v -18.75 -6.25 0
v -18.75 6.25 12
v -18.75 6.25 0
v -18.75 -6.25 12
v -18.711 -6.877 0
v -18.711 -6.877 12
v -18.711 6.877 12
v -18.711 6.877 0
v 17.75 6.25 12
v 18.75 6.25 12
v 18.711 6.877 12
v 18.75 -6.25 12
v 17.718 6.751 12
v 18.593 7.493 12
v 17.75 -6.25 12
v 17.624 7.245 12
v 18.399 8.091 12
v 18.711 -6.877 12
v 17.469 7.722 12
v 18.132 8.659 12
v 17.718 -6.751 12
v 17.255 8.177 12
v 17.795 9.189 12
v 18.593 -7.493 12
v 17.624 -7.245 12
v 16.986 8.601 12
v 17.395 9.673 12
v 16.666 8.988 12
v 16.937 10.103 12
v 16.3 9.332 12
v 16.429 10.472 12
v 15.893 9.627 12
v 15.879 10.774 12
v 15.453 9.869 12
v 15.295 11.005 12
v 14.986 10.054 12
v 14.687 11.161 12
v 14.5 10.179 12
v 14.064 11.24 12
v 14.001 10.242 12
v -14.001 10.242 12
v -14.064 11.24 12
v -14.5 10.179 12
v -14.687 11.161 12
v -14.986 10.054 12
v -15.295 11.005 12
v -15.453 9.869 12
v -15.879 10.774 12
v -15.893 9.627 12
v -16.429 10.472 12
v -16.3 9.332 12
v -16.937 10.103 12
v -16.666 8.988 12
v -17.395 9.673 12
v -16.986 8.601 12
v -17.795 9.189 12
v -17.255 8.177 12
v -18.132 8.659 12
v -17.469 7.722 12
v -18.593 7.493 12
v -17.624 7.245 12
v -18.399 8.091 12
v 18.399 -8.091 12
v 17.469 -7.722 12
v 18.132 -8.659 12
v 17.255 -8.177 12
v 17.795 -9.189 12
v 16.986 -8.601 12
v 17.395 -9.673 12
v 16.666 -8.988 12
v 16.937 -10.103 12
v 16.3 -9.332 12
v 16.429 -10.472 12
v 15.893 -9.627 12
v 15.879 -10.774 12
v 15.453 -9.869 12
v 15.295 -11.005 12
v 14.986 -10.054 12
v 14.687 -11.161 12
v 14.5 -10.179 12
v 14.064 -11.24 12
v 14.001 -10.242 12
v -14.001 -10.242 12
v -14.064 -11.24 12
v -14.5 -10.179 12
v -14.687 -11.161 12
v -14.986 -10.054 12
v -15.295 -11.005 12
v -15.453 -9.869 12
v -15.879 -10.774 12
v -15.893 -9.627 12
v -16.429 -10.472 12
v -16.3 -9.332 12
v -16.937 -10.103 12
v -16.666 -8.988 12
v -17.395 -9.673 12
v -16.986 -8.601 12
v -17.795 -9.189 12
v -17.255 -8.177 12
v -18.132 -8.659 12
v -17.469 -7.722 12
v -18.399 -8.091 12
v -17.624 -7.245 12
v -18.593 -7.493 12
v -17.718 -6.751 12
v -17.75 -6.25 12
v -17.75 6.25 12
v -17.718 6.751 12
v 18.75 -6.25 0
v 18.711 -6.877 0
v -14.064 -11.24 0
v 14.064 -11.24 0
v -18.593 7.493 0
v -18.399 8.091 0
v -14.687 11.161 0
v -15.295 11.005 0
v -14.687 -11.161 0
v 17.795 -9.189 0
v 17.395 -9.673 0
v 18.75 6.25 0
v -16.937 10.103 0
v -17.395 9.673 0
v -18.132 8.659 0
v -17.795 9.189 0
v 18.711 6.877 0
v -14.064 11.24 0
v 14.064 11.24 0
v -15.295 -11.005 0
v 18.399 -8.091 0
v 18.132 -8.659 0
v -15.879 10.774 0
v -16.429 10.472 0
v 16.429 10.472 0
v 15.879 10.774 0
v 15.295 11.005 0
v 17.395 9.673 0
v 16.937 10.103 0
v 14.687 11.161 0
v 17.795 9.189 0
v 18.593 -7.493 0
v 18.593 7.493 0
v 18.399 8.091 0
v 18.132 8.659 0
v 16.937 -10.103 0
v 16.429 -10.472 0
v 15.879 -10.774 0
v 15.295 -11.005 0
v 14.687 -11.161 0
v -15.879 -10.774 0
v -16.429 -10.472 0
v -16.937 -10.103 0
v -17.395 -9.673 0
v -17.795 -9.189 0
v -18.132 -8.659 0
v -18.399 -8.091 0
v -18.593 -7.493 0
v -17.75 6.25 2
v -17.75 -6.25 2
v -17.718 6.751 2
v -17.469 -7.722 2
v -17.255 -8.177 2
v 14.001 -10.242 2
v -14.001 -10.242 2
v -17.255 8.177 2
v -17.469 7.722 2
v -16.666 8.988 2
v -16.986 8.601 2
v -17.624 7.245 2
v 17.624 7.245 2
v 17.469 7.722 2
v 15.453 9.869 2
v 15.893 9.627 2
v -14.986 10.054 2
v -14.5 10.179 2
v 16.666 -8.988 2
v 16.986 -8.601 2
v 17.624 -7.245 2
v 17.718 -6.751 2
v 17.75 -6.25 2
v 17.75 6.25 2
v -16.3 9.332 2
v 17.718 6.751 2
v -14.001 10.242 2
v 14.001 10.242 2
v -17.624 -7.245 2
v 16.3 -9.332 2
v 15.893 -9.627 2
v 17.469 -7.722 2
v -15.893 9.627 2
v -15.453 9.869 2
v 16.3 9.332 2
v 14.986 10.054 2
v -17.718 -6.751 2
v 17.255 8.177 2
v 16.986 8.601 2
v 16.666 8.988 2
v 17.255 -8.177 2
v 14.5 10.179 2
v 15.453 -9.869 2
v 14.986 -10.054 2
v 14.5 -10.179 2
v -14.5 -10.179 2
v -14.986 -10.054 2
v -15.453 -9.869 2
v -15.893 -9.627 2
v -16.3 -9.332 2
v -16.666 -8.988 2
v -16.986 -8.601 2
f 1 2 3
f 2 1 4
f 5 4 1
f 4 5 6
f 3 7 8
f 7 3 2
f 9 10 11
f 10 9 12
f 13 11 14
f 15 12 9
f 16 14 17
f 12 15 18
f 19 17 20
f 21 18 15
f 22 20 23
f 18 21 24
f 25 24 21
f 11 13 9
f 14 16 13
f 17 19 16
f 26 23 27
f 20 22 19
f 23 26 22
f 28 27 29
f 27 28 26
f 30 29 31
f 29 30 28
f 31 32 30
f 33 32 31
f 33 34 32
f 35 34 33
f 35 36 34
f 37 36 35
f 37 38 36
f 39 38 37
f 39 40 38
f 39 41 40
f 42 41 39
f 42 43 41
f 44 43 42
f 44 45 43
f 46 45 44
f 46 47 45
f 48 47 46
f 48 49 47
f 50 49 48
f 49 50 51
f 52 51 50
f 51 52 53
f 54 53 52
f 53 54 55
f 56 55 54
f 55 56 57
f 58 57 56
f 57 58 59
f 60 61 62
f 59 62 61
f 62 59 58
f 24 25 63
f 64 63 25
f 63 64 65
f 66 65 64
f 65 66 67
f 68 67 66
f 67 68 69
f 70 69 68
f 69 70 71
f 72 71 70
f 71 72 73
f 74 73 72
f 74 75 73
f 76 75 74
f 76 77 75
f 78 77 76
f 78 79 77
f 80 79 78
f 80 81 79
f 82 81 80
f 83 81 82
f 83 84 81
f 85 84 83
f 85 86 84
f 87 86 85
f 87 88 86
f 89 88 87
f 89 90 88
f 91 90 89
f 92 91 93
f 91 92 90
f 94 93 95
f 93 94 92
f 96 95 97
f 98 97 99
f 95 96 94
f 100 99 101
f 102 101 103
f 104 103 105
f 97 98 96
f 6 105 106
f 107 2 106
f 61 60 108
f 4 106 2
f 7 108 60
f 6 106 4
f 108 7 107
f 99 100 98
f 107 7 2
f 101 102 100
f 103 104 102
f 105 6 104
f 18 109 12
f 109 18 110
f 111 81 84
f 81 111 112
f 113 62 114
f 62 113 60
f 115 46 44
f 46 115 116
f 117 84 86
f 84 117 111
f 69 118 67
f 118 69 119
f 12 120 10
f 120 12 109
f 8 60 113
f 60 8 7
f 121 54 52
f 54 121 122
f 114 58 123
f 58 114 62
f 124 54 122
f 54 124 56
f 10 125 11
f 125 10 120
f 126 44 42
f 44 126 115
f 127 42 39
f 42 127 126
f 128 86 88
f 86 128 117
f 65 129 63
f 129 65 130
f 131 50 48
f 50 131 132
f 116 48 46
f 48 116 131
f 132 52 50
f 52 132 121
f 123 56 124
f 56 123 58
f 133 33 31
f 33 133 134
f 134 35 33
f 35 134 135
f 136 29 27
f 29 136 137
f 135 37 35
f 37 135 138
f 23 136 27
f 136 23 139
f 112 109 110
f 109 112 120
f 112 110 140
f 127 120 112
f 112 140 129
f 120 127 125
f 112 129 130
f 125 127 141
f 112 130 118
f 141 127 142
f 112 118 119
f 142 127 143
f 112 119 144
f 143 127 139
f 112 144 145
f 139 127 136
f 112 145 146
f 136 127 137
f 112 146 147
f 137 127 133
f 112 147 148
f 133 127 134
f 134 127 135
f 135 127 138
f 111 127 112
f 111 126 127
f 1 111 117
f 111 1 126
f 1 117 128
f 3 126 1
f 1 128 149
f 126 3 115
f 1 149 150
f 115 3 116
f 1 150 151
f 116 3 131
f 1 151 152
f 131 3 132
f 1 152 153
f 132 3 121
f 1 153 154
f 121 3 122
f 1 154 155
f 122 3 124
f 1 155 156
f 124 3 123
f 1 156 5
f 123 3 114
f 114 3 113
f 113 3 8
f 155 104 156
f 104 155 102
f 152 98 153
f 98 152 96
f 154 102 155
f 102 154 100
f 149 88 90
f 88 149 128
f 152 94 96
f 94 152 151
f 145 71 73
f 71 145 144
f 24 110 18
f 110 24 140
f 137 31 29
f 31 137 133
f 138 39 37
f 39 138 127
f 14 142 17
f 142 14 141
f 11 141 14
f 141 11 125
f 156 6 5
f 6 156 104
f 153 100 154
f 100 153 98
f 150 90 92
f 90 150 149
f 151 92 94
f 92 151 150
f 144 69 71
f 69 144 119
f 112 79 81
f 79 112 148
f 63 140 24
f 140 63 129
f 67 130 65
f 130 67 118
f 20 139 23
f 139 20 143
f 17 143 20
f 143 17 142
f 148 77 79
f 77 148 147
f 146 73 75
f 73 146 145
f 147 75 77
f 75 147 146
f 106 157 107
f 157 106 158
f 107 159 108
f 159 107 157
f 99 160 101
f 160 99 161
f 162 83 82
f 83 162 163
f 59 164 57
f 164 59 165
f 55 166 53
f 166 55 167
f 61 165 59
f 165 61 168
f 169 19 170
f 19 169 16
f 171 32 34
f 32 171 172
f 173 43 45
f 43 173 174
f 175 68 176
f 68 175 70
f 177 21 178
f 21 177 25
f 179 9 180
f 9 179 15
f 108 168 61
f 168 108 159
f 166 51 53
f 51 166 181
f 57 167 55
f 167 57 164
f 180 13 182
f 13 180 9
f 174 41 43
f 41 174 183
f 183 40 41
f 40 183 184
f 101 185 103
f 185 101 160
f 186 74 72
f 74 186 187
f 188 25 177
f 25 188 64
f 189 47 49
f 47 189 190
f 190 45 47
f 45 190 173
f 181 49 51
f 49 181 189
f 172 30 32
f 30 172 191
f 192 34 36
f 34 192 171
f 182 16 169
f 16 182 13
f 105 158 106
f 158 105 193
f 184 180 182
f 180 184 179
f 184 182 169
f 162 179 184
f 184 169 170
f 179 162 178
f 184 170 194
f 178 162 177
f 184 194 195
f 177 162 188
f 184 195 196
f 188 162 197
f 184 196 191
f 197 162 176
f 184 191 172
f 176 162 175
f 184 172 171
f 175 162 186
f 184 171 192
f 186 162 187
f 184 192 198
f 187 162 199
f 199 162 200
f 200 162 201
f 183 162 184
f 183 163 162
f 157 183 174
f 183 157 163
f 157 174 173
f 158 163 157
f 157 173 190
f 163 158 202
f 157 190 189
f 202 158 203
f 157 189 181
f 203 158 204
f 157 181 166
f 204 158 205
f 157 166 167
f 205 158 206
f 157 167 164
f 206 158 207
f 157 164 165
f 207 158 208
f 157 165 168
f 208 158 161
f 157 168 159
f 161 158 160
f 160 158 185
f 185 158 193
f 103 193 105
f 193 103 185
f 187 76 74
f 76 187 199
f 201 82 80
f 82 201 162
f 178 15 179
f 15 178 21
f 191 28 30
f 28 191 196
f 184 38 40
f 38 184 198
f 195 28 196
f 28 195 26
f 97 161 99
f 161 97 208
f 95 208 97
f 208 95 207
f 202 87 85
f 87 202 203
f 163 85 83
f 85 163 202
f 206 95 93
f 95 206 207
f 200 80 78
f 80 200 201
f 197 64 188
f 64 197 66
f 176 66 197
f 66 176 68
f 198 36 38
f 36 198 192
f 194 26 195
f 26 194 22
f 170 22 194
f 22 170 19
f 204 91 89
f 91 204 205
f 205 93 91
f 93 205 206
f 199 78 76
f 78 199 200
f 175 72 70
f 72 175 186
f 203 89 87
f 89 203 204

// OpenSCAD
$fn = 50;


difference() {
	union() {
		hull() {
			translate(v = [-13.7500000000, 6.2500000000, 0]) {
				cylinder(h = 12, r = 5);
			}
			translate(v = [13.7500000000, 6.2500000000, 0]) {
				cylinder(h = 12, r = 5);
			}
			translate(v = [-13.7500000000, -6.2500000000, 0]) {
				cylinder(h = 12, r = 5);
			}
			translate(v = [13.7500000000, -6.2500000000, 0]) {
				cylinder(h = 12, r = 5);
			}
		}
	}
	union() {
		translate(v = [0, 0, 2]) {
			hull() {
				translate(v = [-13.7500000000, 6.2500000000, 0]) {
					cylinder(h = 10, r = 4);
				}
				translate(v = [13.7500000000, 6.2500000000, 0]) {
					cylinder(h = 10, r = 4);
				}
				translate(v = [-13.7500000000, -6.2500000000, 0]) {
					cylinder(h = 10, r = 4);
				}
				translate(v = [13.7500000000, -6.2500000000, 0]) {
					cylinder(h = 10, r = 4);
				}
			}
		}
	}
}
